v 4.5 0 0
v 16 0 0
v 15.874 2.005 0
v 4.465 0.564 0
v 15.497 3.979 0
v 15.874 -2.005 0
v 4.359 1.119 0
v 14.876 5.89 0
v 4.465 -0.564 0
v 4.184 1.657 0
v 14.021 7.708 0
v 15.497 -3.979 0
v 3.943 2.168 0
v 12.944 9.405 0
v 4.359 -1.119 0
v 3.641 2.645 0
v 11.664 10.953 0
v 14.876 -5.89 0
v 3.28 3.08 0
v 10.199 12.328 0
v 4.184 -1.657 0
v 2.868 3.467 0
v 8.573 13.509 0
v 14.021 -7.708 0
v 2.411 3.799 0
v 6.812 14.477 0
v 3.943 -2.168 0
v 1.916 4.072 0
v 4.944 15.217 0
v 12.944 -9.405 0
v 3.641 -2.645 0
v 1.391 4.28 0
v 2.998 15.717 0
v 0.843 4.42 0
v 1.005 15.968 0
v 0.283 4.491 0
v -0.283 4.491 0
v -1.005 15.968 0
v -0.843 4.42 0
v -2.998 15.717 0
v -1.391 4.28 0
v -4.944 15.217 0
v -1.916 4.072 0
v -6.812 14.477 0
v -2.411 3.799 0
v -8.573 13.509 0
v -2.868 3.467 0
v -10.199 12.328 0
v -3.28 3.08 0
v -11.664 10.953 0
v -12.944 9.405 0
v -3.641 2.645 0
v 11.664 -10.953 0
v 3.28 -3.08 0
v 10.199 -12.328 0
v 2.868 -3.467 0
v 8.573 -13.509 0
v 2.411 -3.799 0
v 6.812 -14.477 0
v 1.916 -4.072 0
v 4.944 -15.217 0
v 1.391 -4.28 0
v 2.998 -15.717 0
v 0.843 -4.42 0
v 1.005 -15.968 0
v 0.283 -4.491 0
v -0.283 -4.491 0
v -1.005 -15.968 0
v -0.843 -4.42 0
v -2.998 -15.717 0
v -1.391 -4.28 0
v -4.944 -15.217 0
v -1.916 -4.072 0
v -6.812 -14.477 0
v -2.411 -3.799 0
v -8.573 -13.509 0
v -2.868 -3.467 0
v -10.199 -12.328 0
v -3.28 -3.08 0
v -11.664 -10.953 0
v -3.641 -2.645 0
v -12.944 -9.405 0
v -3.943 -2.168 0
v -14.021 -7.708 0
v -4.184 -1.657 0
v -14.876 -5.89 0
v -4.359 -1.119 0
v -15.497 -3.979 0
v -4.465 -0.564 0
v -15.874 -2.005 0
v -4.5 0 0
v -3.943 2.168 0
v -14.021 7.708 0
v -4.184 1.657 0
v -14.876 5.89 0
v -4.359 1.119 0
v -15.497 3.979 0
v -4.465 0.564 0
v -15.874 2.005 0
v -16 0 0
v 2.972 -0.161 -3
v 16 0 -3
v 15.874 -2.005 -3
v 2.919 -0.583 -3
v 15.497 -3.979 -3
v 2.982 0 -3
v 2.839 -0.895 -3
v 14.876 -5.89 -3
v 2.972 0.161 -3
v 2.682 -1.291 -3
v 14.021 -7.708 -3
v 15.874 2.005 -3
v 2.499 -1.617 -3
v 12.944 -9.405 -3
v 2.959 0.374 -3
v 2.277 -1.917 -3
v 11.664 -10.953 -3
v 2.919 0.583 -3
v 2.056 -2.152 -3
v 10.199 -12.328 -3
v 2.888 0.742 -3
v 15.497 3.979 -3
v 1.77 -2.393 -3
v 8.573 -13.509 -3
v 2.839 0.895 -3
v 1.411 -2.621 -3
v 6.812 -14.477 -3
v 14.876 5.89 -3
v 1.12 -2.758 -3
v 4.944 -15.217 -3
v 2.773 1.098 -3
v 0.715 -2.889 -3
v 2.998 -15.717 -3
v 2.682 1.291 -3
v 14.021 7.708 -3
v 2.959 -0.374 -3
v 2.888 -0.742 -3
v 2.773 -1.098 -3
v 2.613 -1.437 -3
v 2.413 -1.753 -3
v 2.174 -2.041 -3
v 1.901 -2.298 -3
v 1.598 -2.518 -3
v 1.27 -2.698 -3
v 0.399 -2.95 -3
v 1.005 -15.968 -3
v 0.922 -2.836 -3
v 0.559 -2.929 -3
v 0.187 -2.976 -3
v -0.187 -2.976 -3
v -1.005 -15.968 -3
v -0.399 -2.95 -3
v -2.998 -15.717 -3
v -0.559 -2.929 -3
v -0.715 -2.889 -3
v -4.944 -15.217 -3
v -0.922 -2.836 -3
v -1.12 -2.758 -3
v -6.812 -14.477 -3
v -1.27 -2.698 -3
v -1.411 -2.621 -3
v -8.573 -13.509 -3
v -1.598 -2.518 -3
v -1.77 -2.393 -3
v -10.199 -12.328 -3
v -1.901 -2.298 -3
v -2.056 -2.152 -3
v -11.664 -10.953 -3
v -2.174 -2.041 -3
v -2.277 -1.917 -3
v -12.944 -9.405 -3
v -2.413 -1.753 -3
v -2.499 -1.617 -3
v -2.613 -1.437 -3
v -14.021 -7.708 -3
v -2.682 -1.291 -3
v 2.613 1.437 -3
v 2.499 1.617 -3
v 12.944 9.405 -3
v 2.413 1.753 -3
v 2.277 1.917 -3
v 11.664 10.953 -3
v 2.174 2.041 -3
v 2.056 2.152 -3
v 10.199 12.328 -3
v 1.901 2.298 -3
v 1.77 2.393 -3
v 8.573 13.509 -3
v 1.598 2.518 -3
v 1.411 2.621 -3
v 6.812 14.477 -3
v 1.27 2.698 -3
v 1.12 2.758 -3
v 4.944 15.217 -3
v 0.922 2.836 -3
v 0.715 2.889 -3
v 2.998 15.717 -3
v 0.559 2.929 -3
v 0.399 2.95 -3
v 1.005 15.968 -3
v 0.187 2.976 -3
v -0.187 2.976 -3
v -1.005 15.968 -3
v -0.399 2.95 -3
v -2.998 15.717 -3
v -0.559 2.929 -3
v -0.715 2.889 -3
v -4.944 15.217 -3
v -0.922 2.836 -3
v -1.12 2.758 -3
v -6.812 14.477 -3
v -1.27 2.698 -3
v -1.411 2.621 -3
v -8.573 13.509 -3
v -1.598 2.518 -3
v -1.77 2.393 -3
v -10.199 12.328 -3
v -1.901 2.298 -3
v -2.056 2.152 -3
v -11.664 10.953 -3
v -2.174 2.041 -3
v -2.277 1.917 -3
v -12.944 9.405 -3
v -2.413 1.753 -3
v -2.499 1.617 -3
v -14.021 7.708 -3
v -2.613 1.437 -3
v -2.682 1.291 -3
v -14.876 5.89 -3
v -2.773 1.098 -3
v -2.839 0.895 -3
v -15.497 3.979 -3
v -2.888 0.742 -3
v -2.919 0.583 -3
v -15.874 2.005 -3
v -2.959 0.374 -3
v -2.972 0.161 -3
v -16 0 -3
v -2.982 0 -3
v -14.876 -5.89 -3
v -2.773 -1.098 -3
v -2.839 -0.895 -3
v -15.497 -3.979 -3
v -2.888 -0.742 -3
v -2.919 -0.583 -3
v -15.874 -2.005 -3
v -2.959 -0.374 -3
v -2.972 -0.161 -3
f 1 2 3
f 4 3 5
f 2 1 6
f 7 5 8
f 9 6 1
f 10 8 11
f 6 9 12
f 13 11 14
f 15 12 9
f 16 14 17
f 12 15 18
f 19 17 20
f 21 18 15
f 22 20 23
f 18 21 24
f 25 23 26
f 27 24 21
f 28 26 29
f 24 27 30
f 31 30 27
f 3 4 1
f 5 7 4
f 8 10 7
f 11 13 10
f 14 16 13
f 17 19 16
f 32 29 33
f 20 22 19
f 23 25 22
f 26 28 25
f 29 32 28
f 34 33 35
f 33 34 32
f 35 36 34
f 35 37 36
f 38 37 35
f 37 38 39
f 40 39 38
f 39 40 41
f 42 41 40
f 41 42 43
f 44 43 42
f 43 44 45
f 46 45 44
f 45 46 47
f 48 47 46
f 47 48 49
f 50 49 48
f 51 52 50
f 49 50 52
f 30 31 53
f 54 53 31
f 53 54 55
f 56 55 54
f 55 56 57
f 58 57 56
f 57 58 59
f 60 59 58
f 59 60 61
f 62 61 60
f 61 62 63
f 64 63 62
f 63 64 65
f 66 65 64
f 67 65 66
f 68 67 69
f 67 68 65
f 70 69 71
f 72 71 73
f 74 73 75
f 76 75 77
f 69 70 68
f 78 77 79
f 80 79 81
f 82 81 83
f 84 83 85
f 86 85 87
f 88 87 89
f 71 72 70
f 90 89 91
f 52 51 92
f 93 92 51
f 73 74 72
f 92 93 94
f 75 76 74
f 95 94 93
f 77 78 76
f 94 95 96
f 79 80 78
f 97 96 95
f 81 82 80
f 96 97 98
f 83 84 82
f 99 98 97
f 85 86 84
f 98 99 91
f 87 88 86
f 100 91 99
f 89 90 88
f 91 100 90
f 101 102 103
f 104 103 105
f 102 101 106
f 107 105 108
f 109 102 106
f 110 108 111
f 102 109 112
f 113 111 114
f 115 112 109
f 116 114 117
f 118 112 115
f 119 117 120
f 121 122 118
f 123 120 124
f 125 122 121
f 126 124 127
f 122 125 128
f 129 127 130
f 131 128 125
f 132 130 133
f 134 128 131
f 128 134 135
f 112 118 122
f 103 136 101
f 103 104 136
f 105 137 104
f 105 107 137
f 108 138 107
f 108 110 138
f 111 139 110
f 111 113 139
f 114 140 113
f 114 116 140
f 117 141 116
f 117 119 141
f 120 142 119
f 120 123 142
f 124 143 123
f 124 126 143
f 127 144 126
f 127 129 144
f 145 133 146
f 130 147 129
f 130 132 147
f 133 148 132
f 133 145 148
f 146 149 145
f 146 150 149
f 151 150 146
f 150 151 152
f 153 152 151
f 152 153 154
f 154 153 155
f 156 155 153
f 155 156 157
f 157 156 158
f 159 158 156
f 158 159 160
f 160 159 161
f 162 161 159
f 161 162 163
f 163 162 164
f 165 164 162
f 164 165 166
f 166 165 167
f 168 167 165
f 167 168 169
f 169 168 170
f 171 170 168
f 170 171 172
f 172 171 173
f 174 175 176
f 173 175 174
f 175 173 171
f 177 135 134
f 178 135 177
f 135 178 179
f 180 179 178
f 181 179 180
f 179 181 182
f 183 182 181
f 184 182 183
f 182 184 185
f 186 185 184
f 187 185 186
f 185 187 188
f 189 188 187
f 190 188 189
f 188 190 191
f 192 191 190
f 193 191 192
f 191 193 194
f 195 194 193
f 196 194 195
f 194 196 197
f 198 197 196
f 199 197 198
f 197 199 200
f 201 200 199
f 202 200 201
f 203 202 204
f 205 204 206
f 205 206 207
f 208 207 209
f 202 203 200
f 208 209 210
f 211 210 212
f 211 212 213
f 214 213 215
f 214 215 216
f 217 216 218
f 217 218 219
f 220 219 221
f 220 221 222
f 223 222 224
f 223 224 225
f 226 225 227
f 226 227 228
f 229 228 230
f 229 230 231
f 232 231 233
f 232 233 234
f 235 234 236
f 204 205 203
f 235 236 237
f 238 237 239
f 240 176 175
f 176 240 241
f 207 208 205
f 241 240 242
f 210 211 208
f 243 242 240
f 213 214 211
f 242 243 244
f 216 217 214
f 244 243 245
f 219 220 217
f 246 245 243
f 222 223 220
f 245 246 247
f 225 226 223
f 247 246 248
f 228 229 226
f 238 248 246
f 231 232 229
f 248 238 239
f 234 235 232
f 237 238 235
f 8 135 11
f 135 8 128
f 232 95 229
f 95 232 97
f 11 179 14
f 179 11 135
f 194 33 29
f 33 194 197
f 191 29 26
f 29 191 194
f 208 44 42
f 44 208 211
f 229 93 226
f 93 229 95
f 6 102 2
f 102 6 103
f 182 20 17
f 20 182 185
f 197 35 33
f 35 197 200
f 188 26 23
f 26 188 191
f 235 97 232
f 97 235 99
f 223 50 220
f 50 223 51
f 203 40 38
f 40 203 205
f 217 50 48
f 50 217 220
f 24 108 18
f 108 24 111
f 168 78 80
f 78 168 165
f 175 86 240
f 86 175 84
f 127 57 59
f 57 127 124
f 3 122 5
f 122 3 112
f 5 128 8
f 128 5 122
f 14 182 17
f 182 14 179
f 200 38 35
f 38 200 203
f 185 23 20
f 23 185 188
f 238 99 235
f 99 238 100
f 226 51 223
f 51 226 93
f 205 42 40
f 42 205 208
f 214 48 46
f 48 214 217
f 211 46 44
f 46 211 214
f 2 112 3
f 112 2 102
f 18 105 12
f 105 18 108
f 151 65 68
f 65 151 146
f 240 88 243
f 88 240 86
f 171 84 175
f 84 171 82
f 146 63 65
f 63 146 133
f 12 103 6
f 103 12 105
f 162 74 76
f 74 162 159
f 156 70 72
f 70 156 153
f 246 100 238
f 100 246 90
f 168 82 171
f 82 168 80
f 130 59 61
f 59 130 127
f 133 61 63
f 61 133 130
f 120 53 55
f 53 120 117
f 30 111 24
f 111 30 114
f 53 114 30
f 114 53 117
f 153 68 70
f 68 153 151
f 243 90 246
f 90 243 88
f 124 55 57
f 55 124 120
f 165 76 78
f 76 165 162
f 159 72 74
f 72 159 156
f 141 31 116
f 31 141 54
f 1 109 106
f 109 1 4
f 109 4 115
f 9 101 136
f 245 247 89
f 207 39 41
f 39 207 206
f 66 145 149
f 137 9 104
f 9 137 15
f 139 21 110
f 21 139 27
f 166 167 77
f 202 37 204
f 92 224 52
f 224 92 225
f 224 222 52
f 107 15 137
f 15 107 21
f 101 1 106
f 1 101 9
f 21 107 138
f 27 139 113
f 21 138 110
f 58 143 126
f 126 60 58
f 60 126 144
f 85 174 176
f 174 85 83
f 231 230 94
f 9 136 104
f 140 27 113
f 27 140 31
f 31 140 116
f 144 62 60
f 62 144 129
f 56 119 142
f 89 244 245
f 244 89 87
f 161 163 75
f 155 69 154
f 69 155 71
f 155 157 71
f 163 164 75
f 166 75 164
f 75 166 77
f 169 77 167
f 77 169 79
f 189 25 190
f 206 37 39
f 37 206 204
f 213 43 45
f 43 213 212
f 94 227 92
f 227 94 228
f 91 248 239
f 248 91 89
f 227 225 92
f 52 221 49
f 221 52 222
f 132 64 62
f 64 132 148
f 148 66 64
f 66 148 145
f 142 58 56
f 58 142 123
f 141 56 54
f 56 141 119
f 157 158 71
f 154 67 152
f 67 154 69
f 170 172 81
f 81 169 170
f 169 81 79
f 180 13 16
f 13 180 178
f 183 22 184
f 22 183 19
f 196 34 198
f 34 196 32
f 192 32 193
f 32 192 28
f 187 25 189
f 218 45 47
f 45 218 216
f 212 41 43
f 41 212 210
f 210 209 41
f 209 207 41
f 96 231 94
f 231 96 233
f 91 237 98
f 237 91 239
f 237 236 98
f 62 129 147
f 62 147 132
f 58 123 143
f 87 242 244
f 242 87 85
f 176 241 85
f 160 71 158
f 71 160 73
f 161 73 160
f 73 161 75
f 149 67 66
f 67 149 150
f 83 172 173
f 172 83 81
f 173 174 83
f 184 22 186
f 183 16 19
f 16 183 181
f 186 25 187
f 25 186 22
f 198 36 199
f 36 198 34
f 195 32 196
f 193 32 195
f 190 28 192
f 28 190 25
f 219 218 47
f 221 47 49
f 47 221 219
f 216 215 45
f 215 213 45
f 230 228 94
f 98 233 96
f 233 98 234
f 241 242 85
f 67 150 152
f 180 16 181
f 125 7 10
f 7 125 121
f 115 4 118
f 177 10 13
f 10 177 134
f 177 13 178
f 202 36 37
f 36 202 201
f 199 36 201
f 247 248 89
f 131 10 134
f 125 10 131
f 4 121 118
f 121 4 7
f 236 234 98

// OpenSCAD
$fn = 50;


difference() {
	union() {
		translate(v = [0, 0, -3.0000000000]) {
			cylinder(h = 3, r = 10.0000000000);
		}
		translate(v = [0, 0, -3.0000000000]) {
			cylinder(h = 3, r = 16.0000000000);
		}
	}
	union() {
		translate(v = [0, 0, 0]) {
			rotate(a = [0, 0, 0]) {
				difference() {
					union() {
						#translate(v = [0, 0, -3.0000000000]) {
							cylinder(h = 3, r = 2.2500000000);
						}
						#translate(v = [0, 0, -4.2000000000]) {
							cylinder(h = 4.2000000000, r = 10.0000000000, r1 = 2.3750000000, r2 = 4.5000000000);
						}
						#translate(v = [0, 0, -3.0000000000]) {
							cylinder(h = 3, r = 2.3750000000);
						}
						#translate(v = [0, 0, -3.0000000000]) {
							cylinder(h = 3, r = 2.2500000000);
						}
					}
					union();
				}
			}
		}
	}
}
